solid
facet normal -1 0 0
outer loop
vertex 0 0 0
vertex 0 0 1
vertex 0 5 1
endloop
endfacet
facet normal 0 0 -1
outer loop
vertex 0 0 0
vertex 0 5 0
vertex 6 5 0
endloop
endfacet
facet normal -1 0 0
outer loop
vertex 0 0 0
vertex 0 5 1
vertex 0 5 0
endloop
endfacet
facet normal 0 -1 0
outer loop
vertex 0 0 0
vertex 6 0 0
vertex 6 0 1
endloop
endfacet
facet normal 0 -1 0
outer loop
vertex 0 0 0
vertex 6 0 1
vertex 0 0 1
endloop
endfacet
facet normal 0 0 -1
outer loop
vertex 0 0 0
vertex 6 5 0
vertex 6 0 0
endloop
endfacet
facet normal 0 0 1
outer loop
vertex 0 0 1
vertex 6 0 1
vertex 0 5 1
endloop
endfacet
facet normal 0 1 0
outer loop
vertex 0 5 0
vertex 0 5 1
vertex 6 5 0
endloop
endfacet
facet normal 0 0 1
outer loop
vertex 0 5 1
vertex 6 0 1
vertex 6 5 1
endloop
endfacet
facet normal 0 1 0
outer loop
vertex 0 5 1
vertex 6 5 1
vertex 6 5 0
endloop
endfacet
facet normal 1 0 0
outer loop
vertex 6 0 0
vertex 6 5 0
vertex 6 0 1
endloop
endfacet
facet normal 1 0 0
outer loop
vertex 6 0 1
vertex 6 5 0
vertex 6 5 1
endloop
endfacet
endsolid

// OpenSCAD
/* Warning, this is a very basic generator with a lot of approximation 
input data : [DFN-S, AWX, 6x5mm, 8, , D, C04-00122D]
generated by com.zoubworld.electronics.cad.model3d.Basic
Date : Sun Feb 15 10:50:48 CET 2026
*/

//body
color("black")
translate([0,0,0])
cube([6.0,5.0,1.0], center=false);
